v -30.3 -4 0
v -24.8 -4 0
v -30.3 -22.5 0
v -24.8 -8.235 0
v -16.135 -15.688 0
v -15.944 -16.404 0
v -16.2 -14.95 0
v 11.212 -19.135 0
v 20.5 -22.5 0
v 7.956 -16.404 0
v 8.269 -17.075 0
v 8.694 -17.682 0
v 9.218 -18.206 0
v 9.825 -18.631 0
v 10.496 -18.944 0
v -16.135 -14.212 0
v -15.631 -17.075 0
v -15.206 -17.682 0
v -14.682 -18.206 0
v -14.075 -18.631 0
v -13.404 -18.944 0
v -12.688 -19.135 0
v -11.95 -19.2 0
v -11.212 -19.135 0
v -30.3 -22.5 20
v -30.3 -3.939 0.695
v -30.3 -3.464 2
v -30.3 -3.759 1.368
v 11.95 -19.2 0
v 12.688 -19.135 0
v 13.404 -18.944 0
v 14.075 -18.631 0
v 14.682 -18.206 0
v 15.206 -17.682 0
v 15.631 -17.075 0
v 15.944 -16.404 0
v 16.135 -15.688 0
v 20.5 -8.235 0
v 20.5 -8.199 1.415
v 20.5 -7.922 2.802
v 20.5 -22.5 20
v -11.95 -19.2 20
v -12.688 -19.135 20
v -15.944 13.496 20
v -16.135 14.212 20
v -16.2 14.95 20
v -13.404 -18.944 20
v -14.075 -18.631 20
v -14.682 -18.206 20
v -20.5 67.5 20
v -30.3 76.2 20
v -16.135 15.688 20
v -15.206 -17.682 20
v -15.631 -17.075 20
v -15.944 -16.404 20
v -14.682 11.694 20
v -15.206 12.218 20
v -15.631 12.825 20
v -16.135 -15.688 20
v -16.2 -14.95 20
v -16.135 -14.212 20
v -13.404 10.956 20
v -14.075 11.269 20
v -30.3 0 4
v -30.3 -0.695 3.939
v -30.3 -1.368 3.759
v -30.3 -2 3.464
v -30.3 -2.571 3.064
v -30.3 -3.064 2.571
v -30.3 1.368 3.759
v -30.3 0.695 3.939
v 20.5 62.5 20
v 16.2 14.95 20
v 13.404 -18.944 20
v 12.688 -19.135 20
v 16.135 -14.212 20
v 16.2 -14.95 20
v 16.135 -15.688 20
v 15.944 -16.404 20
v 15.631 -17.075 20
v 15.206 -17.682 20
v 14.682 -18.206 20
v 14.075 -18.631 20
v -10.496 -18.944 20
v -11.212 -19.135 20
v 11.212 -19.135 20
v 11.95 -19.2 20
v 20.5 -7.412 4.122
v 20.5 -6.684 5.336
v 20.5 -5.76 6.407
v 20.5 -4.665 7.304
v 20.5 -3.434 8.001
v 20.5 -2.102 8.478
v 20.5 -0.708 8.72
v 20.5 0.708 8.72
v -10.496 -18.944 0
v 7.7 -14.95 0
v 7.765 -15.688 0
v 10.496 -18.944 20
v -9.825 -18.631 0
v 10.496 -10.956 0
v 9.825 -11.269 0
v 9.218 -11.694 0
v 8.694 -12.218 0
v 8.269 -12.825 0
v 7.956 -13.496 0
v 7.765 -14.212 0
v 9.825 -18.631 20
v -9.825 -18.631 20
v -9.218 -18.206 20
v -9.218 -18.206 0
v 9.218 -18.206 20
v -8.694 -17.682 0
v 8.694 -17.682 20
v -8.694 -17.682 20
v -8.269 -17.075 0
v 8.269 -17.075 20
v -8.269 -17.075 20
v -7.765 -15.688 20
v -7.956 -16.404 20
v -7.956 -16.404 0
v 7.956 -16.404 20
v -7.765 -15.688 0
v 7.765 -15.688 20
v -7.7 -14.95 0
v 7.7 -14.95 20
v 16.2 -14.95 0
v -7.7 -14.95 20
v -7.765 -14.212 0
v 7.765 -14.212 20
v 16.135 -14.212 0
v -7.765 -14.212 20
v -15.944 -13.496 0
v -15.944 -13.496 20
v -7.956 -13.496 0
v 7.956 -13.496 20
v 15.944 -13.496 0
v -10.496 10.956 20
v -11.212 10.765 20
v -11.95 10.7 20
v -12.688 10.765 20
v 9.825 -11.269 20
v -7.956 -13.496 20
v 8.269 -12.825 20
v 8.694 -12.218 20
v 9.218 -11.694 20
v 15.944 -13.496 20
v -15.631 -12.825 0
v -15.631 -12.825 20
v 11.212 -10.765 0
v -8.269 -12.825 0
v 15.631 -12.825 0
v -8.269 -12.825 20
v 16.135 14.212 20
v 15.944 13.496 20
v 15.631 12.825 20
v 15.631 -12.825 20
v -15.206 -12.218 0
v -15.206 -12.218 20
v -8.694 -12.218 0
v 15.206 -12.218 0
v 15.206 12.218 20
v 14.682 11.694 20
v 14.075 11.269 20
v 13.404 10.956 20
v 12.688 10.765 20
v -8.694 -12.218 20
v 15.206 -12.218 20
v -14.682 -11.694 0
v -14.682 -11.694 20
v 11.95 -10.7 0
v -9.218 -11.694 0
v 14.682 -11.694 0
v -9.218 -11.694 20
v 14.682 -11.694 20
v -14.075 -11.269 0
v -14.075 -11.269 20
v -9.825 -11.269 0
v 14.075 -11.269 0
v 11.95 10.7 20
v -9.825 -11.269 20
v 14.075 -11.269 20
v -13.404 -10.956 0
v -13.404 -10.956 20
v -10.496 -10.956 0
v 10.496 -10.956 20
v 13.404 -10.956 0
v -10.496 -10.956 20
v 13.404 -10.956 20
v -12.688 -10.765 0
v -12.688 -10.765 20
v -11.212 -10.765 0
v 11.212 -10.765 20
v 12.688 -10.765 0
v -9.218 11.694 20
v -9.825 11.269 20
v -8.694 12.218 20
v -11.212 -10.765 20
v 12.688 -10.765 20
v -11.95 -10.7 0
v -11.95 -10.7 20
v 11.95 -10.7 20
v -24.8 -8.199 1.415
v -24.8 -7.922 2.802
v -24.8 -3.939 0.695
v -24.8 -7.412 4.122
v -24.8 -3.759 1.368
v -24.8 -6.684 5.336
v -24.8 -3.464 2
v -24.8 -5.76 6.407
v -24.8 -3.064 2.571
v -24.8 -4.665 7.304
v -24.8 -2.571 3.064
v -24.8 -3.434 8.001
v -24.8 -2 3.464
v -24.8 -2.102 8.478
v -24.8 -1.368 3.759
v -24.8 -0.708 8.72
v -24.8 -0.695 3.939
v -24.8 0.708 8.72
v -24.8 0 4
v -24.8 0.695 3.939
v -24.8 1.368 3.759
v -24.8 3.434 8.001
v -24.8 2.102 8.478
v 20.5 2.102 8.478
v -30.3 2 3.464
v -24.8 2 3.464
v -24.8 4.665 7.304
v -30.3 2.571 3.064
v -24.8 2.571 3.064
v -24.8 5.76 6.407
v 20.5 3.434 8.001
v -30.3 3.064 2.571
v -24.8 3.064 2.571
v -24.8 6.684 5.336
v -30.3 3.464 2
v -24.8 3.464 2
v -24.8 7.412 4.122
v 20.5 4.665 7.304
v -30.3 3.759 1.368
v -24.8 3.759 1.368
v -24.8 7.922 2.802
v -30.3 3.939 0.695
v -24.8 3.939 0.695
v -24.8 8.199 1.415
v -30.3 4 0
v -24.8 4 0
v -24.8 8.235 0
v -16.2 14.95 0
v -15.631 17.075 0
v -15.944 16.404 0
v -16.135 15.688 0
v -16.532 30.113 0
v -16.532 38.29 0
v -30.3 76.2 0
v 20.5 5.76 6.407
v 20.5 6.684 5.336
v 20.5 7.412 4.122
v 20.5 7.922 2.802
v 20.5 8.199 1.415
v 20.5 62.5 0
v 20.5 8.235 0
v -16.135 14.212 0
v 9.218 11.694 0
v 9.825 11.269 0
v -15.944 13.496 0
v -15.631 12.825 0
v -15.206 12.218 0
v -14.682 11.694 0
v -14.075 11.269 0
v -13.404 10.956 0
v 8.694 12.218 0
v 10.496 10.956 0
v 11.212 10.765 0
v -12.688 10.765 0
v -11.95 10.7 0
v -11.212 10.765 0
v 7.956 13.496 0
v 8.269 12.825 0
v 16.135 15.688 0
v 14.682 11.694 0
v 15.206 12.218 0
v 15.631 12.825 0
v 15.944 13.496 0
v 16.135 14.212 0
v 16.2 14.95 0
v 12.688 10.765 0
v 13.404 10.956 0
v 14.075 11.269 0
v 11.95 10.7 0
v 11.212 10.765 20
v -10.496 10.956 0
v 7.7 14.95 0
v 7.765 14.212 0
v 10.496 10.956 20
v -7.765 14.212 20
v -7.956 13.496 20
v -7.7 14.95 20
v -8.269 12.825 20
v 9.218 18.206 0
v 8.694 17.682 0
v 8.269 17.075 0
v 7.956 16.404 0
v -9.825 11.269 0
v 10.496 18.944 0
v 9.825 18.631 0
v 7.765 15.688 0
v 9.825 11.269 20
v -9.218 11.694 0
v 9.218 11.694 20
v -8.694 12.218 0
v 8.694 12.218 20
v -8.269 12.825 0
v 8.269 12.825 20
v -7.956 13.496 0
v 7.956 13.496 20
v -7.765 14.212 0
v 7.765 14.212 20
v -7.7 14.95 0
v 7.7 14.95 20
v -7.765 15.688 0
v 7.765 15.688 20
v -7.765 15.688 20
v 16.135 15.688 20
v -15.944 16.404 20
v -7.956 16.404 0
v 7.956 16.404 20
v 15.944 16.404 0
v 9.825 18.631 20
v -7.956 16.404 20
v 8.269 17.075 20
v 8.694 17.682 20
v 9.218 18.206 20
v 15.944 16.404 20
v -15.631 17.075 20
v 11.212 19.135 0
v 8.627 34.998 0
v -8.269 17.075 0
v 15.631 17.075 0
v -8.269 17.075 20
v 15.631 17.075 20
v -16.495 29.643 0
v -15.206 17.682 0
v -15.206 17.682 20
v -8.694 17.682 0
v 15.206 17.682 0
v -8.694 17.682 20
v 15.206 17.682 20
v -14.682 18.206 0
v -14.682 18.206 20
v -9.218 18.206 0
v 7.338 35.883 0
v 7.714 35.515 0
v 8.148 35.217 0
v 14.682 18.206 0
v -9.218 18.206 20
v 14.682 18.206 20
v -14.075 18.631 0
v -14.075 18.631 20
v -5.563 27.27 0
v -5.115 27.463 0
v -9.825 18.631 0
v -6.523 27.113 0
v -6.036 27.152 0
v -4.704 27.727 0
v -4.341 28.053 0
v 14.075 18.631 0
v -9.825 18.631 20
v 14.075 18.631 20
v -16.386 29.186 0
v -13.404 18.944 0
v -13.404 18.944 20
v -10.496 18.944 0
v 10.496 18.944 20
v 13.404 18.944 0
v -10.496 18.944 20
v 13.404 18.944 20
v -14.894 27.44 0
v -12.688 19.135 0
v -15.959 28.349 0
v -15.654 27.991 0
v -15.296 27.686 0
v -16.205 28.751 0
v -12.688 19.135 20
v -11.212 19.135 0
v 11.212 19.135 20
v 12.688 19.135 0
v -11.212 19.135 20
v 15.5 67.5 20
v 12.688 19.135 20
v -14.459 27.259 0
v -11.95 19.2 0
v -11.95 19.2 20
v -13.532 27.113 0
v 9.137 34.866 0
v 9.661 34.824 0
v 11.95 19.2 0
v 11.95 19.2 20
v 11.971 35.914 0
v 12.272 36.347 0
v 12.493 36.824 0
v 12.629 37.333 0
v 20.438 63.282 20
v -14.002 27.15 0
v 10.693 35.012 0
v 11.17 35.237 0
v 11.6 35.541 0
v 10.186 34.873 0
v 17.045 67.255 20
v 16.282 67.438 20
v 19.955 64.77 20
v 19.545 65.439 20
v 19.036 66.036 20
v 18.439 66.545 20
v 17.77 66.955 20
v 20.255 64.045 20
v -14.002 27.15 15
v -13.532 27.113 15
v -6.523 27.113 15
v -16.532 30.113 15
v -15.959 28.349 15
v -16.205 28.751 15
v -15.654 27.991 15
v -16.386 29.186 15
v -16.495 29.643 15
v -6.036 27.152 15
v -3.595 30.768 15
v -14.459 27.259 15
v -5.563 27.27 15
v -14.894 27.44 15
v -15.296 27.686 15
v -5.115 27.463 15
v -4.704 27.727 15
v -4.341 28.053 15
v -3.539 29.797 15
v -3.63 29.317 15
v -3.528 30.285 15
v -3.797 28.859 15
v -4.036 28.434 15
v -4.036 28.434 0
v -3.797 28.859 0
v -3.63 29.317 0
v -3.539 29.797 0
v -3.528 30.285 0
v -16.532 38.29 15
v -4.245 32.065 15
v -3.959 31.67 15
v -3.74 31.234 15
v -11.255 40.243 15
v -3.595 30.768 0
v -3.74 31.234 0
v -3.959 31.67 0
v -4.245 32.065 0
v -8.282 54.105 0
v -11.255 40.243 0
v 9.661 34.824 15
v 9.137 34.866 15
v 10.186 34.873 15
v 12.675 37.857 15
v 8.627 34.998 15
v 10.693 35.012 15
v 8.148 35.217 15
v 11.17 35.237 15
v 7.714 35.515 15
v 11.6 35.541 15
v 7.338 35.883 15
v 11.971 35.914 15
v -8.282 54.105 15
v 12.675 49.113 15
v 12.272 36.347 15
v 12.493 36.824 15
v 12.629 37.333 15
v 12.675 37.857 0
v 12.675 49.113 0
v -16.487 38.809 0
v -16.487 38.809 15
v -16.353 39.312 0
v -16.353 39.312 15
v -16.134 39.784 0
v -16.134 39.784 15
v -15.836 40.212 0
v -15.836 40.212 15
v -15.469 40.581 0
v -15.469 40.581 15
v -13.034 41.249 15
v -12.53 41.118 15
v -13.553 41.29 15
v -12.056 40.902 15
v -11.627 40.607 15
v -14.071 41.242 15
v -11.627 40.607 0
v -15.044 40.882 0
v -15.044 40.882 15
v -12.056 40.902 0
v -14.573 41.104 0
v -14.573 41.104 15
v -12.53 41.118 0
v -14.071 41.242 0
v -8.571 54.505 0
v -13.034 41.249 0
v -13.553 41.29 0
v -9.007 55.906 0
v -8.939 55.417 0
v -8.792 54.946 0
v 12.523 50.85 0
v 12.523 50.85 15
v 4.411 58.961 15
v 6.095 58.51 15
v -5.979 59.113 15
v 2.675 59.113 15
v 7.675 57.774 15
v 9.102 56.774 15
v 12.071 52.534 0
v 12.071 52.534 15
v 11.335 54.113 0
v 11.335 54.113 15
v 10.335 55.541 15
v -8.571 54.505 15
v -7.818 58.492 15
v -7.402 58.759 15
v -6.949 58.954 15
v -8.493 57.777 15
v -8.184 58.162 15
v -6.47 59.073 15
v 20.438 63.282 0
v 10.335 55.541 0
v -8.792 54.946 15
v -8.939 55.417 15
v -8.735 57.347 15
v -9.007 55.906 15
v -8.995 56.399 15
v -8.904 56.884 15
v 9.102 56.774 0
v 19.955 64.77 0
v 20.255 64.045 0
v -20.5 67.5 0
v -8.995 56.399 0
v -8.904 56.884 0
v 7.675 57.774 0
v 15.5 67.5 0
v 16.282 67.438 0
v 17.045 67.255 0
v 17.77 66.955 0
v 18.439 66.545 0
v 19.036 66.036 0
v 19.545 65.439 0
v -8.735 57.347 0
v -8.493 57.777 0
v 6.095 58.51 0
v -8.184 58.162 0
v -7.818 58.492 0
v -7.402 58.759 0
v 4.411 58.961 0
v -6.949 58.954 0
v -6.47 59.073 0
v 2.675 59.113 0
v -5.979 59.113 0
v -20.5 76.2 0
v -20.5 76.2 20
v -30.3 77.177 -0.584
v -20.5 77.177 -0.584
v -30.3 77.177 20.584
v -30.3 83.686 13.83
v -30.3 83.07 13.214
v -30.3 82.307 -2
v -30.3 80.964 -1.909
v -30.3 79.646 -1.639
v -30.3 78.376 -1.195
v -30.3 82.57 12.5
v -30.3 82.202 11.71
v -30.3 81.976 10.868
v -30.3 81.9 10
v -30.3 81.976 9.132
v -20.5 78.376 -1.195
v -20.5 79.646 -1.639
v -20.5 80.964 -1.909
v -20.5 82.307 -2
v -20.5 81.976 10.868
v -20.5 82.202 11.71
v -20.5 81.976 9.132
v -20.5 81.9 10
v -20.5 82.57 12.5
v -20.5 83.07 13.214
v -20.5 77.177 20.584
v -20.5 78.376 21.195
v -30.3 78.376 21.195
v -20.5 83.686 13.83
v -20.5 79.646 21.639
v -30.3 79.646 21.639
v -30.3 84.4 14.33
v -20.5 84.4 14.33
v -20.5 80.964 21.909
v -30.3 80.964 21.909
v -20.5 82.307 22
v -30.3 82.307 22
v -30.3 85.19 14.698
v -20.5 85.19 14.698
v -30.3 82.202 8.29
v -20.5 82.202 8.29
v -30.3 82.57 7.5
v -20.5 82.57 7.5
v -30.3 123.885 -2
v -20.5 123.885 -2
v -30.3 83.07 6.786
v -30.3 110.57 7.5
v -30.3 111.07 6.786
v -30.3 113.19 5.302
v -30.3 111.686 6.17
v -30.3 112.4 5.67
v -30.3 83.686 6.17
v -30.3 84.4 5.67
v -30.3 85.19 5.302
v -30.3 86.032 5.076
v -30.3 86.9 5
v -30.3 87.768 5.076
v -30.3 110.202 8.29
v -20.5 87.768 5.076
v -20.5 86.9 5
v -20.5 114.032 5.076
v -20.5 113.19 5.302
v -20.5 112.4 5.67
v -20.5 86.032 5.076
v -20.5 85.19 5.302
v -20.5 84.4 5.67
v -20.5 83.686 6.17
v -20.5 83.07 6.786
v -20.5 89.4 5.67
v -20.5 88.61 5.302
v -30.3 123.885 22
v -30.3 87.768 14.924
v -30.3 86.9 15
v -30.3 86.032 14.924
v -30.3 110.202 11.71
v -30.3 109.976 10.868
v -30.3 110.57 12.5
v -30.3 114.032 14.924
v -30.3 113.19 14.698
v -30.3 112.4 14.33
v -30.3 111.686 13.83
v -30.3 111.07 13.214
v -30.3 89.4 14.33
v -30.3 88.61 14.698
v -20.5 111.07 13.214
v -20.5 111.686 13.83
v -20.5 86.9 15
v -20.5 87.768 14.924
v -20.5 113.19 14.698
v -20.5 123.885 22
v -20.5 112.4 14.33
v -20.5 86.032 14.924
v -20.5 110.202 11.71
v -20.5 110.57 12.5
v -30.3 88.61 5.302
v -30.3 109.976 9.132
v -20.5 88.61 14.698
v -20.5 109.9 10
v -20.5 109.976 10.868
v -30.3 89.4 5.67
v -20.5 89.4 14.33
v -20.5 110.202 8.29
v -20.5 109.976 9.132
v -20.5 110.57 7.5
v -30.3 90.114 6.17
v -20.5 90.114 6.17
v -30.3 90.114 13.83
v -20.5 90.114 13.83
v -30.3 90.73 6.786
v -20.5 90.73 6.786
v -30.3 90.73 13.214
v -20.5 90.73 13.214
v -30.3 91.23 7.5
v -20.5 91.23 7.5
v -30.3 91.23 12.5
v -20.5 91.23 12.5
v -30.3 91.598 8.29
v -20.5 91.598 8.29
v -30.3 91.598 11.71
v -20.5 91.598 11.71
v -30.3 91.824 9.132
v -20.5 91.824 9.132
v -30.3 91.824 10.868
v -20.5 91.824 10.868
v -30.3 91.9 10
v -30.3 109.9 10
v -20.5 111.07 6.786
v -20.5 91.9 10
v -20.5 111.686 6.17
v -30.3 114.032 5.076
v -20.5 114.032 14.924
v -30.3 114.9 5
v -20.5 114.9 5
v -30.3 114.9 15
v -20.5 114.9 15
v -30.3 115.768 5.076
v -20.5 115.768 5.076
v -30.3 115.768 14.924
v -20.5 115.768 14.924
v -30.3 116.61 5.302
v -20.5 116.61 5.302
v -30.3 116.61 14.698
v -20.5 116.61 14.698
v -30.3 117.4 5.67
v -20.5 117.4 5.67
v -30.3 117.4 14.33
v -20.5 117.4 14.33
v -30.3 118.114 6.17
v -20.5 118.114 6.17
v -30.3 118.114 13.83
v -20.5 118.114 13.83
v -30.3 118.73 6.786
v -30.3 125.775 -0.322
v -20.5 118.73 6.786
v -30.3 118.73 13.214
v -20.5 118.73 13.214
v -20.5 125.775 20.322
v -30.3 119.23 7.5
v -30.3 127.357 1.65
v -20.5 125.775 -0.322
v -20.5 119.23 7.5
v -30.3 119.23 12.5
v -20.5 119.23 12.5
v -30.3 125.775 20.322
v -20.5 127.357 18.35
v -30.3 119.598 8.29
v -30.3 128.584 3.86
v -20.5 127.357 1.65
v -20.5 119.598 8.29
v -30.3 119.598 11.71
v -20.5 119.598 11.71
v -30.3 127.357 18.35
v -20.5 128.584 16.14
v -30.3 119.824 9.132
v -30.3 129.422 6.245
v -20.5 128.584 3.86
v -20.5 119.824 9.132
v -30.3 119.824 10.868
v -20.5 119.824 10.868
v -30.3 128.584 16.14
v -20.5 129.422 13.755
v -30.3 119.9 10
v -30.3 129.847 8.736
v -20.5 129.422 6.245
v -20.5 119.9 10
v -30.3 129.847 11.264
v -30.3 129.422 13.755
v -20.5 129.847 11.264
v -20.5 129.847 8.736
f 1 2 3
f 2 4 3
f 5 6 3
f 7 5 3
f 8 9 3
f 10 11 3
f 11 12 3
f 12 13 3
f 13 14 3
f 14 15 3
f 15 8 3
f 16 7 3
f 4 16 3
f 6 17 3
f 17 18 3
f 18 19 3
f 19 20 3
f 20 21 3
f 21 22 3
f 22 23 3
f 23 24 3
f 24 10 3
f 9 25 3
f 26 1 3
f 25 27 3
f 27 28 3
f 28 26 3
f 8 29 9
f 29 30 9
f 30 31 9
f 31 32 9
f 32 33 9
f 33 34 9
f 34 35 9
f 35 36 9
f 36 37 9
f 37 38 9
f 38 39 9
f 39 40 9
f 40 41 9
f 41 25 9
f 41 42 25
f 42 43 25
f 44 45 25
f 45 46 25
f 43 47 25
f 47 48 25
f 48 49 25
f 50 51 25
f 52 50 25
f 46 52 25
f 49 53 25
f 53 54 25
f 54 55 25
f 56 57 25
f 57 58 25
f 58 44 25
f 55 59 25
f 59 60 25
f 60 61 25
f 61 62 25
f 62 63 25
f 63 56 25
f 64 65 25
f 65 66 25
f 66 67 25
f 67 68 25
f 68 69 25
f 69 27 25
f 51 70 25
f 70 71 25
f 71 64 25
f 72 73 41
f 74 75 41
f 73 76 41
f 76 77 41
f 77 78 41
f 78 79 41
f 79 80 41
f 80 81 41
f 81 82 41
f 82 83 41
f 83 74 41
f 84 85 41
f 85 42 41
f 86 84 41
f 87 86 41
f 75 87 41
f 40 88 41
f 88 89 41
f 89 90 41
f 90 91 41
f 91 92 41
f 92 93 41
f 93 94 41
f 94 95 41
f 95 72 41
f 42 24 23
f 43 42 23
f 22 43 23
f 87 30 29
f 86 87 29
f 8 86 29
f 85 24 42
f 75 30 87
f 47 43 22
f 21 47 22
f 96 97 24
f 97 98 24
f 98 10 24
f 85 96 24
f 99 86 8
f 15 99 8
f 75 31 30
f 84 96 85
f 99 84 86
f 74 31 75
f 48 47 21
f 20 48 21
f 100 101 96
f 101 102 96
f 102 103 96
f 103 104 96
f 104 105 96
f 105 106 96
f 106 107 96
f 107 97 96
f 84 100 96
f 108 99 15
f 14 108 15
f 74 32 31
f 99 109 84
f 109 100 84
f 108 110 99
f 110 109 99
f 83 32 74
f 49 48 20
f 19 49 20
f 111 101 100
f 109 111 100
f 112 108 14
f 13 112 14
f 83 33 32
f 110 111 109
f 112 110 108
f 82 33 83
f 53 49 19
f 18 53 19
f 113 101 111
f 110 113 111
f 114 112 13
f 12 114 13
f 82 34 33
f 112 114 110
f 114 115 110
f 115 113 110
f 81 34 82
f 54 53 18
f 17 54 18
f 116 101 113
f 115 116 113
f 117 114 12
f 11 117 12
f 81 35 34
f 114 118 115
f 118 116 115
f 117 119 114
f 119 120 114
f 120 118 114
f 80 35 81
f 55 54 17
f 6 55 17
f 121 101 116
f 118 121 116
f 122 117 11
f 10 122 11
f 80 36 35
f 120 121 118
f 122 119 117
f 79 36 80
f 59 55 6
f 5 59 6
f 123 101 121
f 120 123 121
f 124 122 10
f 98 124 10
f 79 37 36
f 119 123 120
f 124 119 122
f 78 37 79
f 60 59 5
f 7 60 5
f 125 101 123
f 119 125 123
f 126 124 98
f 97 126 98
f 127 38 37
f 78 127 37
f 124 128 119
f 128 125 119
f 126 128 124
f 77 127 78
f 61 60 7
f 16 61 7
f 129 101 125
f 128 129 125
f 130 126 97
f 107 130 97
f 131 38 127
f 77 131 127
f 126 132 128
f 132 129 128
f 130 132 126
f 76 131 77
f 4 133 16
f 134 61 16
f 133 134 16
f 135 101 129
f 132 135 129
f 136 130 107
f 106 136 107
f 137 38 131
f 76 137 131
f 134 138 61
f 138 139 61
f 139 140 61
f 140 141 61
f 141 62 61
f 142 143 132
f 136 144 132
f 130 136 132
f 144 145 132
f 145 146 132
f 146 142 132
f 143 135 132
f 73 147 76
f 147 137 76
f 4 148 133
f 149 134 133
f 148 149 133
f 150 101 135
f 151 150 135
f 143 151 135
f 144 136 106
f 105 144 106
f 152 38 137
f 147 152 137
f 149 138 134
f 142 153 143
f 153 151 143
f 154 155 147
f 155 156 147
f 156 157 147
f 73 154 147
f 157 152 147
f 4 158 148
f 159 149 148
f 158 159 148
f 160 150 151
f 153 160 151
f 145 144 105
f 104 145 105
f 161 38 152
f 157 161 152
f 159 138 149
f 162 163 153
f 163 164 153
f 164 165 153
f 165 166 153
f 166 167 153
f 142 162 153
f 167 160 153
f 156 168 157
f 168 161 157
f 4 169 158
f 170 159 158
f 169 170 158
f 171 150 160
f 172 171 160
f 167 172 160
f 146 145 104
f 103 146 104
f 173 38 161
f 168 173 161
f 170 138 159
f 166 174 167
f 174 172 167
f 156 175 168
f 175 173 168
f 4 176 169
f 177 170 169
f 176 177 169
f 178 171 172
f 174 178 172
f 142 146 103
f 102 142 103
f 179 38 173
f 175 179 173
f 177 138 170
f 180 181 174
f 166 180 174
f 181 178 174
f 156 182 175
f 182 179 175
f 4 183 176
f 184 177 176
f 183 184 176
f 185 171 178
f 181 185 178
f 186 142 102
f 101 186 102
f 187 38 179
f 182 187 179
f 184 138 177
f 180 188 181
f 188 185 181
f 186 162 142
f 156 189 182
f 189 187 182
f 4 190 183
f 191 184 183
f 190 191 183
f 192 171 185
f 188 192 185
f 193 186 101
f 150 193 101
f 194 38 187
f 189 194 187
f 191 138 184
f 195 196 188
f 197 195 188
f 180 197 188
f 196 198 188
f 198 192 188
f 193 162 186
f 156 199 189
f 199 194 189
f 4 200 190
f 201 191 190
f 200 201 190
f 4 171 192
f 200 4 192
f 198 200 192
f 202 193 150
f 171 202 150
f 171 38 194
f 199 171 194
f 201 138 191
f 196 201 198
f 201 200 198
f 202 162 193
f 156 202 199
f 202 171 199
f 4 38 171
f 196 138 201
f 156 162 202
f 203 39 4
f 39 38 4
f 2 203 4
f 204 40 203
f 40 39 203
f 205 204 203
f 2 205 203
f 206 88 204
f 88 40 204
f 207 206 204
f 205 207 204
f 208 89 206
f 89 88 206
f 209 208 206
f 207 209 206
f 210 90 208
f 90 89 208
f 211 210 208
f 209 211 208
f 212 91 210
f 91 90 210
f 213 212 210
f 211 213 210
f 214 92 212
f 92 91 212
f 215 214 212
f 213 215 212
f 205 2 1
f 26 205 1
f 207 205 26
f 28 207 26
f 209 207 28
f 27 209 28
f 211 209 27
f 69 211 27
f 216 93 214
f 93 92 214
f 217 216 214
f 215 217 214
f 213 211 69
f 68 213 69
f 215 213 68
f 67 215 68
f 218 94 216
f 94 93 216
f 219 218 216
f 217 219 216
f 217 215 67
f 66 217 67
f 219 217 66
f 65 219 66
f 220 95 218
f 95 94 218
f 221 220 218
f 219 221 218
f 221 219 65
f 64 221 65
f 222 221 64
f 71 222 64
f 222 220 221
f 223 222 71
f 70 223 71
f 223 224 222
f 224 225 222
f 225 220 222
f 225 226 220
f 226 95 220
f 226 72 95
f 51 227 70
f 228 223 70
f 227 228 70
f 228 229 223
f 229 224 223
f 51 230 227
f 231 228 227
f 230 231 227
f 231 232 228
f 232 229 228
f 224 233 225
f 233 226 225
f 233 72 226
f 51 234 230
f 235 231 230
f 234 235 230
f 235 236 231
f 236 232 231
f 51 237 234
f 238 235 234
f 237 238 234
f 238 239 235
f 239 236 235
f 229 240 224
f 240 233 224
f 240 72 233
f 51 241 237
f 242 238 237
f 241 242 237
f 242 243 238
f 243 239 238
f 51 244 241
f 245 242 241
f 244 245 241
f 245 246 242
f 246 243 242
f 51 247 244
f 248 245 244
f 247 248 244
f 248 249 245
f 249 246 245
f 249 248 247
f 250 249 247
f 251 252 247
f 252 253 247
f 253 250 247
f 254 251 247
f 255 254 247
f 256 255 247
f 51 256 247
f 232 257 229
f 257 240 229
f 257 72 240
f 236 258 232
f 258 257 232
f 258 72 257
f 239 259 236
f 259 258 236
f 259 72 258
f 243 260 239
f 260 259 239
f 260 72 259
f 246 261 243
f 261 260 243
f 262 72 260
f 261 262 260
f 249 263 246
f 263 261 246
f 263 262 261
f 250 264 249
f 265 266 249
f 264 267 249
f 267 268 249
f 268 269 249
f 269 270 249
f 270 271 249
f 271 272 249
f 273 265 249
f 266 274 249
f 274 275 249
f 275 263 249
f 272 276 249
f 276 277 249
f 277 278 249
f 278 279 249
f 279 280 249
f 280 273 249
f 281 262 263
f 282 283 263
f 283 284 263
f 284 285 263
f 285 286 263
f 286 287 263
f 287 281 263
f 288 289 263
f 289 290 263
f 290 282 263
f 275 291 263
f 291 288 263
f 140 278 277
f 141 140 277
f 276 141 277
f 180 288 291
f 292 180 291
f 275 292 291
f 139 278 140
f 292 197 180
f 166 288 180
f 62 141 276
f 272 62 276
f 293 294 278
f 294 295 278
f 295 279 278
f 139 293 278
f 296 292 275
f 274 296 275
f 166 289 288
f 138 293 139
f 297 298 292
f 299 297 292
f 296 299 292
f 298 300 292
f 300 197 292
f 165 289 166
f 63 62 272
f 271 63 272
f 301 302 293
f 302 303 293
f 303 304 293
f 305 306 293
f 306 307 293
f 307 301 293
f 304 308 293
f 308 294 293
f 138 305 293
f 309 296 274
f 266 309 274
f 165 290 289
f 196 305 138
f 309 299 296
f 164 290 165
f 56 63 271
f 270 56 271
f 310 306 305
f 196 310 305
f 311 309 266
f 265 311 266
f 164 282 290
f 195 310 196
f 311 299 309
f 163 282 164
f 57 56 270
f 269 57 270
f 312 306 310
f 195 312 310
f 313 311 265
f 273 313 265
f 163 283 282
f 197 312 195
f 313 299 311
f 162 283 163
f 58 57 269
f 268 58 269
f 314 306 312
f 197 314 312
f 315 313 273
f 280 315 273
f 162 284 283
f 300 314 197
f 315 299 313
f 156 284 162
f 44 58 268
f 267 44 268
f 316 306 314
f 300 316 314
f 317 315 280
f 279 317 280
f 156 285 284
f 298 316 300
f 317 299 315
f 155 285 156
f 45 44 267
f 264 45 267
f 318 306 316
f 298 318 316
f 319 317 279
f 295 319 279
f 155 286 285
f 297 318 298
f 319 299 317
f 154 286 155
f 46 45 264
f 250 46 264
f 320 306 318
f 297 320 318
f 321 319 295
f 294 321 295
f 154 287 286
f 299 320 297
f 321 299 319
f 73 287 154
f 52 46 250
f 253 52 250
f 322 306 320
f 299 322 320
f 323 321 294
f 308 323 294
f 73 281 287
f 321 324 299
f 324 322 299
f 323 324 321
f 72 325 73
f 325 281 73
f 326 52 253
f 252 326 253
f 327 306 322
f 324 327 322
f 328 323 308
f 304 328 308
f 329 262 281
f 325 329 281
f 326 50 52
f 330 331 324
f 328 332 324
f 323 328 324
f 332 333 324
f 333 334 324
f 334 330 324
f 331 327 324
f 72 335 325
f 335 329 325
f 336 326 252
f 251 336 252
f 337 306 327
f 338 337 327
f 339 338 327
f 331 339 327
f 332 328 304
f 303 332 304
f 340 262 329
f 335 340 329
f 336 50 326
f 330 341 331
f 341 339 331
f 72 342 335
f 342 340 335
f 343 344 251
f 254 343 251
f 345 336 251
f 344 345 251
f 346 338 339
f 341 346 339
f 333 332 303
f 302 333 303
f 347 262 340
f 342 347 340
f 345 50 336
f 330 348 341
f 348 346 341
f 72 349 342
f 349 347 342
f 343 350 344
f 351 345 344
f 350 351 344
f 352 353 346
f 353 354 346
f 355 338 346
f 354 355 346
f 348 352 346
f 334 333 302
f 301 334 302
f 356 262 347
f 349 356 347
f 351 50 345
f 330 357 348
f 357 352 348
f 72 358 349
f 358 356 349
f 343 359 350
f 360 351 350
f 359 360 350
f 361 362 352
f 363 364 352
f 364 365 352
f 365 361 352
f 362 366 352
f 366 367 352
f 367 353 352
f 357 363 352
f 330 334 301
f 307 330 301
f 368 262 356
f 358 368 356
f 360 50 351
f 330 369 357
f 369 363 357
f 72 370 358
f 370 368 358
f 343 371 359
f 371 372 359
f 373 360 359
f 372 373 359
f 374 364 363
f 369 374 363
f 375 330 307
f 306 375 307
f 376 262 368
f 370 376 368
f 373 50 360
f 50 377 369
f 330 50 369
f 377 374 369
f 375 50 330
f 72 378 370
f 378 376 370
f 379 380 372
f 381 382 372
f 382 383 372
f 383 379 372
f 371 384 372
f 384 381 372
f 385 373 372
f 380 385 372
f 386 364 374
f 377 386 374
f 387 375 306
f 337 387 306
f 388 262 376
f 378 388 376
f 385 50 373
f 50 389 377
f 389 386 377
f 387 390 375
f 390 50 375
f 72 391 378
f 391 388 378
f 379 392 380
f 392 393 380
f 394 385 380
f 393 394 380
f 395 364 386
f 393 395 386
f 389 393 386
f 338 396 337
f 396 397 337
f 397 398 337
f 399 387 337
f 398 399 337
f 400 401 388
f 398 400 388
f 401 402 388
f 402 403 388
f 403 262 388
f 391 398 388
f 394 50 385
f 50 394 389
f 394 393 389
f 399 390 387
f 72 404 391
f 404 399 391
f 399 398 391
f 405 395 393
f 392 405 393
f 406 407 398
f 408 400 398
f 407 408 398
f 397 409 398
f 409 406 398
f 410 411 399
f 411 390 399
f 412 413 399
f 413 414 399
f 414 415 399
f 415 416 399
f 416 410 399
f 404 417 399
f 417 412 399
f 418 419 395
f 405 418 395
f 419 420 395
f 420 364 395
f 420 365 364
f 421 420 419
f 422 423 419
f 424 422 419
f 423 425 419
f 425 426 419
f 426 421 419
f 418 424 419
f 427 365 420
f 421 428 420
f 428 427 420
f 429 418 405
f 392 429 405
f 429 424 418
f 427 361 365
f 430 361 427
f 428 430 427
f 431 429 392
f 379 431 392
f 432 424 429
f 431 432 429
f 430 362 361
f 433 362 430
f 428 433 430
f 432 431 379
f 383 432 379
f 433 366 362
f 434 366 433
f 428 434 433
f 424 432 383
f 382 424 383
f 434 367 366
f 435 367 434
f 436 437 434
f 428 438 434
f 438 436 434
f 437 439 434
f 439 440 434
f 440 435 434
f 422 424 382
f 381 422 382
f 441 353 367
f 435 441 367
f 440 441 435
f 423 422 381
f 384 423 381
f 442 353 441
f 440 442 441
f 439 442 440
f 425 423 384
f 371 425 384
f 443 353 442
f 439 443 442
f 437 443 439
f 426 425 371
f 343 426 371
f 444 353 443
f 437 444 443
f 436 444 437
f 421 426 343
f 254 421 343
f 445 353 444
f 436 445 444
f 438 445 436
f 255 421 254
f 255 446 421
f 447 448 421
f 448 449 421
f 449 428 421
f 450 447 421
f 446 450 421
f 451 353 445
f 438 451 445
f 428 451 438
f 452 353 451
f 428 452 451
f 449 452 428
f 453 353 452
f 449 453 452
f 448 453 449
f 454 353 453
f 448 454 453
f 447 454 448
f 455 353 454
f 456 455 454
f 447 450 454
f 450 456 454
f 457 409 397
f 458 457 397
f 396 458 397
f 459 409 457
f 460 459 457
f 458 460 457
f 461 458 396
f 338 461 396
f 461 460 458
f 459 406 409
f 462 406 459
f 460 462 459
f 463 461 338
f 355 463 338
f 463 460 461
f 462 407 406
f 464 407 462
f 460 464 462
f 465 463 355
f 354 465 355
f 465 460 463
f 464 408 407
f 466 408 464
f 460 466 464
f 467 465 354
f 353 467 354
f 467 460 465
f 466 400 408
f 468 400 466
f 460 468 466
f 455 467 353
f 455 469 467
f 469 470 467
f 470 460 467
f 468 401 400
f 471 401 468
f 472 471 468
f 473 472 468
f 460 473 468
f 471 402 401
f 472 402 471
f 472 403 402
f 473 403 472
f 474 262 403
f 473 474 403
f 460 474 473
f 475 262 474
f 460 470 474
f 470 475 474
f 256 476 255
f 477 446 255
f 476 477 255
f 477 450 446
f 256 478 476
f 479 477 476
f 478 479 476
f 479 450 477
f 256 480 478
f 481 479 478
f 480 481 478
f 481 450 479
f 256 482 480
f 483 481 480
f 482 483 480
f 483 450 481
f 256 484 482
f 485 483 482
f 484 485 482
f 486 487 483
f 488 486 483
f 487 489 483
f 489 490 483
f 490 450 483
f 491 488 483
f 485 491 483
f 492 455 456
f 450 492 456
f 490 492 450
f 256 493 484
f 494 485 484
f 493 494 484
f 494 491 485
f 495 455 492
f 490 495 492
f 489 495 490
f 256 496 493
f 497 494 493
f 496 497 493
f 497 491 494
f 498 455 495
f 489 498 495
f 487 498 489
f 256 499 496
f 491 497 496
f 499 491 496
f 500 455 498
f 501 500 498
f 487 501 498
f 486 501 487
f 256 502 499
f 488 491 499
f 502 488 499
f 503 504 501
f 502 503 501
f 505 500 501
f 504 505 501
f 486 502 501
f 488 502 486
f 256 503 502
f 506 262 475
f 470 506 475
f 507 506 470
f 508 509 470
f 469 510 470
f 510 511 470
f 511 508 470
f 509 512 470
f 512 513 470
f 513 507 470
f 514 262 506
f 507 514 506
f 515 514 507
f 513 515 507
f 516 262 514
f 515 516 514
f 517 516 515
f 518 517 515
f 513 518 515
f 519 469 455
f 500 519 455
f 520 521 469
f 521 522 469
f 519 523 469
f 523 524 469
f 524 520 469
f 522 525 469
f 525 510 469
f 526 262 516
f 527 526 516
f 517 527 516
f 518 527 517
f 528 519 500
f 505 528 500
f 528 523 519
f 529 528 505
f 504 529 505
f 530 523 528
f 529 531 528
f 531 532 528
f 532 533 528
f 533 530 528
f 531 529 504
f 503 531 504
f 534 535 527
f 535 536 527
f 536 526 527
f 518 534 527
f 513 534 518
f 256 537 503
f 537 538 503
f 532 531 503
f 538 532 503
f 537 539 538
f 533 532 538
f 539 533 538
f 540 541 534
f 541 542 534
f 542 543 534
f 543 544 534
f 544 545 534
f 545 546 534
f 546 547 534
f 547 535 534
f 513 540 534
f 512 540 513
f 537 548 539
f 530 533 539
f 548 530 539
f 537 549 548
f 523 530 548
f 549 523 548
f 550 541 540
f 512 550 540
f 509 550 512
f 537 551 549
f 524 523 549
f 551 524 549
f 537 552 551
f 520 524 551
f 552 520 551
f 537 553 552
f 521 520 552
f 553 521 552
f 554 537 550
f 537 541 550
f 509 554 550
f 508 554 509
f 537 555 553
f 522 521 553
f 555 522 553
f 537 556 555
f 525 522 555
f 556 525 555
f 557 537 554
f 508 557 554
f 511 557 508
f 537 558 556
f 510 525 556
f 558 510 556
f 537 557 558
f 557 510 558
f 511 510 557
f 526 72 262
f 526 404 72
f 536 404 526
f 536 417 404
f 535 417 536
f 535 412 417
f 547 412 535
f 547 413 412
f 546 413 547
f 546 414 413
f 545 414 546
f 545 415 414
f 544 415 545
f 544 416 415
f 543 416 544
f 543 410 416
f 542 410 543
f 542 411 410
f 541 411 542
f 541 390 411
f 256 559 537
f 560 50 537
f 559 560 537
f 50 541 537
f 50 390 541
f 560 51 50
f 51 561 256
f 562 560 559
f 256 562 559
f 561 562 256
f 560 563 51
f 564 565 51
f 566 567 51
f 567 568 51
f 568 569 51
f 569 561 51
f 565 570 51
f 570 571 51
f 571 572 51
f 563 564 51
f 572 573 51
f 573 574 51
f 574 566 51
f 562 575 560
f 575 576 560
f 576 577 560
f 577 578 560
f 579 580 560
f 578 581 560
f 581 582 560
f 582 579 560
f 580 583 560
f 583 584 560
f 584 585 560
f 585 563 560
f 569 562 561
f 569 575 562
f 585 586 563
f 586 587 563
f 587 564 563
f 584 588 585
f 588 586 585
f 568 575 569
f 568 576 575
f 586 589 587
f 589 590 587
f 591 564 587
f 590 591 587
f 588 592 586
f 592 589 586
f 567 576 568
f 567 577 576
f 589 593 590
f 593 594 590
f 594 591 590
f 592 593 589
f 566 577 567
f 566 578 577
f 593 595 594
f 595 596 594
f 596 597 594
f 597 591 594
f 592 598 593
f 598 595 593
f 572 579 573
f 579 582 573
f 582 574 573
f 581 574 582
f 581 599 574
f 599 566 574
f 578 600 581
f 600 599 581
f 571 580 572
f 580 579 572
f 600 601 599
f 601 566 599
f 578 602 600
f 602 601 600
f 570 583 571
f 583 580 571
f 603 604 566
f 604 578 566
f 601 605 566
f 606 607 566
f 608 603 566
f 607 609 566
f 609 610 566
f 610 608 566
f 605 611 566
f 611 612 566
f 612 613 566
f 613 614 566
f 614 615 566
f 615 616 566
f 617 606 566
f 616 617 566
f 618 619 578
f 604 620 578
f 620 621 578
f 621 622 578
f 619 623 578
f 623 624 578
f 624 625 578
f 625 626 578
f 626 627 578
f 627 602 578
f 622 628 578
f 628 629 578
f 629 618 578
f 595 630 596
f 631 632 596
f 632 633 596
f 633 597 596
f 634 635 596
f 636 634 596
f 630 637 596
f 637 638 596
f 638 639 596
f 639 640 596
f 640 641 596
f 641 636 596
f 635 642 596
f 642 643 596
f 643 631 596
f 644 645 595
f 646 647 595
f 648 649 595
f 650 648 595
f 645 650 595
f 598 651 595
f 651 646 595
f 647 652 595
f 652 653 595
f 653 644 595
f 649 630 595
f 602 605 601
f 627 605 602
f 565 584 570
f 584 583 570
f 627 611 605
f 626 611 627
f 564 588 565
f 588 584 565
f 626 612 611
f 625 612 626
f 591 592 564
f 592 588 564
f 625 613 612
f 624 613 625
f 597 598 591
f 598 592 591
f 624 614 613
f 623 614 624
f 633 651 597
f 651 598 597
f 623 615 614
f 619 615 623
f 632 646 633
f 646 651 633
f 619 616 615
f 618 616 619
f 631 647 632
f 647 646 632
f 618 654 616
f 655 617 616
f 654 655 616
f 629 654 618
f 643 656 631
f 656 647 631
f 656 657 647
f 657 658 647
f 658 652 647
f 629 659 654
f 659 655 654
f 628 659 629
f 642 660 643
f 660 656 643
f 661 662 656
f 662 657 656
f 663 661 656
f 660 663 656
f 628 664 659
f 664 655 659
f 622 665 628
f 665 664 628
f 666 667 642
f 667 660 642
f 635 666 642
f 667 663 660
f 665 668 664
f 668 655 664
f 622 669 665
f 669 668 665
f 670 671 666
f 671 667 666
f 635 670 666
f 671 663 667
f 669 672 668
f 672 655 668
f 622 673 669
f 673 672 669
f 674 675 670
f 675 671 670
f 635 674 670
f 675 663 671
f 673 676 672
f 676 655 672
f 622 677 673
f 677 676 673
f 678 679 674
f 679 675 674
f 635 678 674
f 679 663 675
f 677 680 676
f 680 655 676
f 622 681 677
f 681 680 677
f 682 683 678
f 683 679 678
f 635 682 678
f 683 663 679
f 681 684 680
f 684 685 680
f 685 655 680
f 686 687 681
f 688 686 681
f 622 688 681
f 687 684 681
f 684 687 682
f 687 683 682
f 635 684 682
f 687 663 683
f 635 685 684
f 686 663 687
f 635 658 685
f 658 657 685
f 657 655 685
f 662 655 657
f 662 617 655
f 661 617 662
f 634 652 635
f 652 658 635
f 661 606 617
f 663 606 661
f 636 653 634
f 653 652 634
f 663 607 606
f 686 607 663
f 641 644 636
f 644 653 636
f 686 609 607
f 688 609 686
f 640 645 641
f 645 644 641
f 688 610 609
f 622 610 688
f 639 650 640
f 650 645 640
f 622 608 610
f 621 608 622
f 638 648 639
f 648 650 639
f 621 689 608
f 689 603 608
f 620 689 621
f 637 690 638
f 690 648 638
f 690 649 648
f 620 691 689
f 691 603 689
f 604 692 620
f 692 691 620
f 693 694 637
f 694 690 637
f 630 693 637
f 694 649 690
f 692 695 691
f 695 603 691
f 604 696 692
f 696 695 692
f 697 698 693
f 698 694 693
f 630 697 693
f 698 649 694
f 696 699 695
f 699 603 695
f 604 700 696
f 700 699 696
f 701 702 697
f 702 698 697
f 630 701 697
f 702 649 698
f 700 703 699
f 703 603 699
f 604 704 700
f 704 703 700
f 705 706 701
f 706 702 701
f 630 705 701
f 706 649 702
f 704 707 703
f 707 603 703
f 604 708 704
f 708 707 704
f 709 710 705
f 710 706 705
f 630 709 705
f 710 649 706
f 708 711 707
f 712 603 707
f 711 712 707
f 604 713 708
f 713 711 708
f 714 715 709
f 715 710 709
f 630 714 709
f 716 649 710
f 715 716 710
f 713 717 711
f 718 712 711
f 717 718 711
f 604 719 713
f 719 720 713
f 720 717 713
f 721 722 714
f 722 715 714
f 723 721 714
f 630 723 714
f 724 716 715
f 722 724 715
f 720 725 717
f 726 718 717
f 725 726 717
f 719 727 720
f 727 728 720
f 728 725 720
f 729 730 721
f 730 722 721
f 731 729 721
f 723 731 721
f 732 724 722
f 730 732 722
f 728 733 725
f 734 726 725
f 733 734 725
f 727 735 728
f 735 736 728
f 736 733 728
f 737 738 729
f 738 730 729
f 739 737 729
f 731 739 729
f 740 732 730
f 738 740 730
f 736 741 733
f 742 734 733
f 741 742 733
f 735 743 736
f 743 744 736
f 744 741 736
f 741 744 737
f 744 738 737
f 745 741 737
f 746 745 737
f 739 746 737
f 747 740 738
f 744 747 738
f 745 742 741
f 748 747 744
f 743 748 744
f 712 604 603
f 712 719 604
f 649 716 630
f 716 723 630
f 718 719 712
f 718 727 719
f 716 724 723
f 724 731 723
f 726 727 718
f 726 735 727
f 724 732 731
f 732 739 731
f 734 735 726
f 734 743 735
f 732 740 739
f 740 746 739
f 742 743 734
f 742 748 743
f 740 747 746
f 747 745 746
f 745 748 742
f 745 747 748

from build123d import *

# Parameters (mm, degrees)
SKETCH4_W               = 41
SKETCH4_H               = 45
SKETCH4_R               = 4.25
BOSS_EXTRUDE1_DEPTH     = 20
SKETCH6_W               = 9.8
SKETCH6_H               = 152.4
BOSS_EXTRUDE2_DEPTH     = 20
SKETCH7_R               = 5
BOSS_EXTRUDE3_DEPTH     = 9.8
SKETCH8_R               = 5
CUT_EXTRUDE2_DEPTH      = 15
SKETCH5_R               = 8.25
CUT_EXTRUDE1_DEPTH      = 65
BOSS_EXTRUDE4_DEPTH     = 20
CUT_EXTRUDE3_DEPTH      = 86
CUT_EXTRUDE3_DEPTH_BACK = 86
BOSS_EXTRUDE5_START     = -1.5
BOSS_EXTRUDE5_DEPTH     = 1.5
CUT_EXTRUDE4_DEPTH      = 13.5
SKETCH13_R              = 5
BOSS_EXTRUDE6_DEPTH     = 4
SKETCH14_R              = 4
CUT_EXTRUDE5_DEPTH      = 10
CUT_EXTRUDE6_DEPTH      = 15


with BuildPart() as part:
    # Sketch4 → Boss-Extrude1 (new body)
    with BuildSketch(Plane.XY):
        Rectangle(SKETCH4_W, SKETCH4_H)
        with Locations((-11.95, 14.95)):
            Circle(SKETCH4_R, mode=Mode.SUBTRACT)
        with Locations((11.95, 14.95)):
            Circle(SKETCH4_R, mode=Mode.SUBTRACT)
        with Locations((11.95, -14.95)):
            Circle(SKETCH4_R, mode=Mode.SUBTRACT)
        with Locations((-11.95, -14.95)):
            Circle(SKETCH4_R, mode=Mode.SUBTRACT)
    extrude(amount=BOSS_EXTRUDE1_DEPTH)

    # Sketch6 → Boss-Extrude2 (add)
    with BuildSketch(Plane(origin=(0, 0, 0), x_dir=(-1, 0, 0), z_dir=(0, 0, -1))):
        with Locations((25.4, 53.7)):
            Rectangle(SKETCH6_W, SKETCH6_H)
    extrude(amount=-BOSS_EXTRUDE2_DEPTH)

    # Sketch7 → Boss-Extrude3 (add)
    with BuildSketch(Plane(origin=(-20.5, 0, 0), x_dir=(0, 0, -1), z_dir=(1, 0, 0))):
        with Locations((-10, 114.9)):
            Circle(SKETCH7_R)
        with Locations((-10, 86.9)):
            Circle(SKETCH7_R)
        with BuildLine():
            Line((0, 76.2), (0.583845628, 77.176915135))
            ThreePointArc((0.583845628, 77.176915135), (1.639462026, 79.646010822), (2, 82.306982798))
            Line((2, 82.306982798), (2, 123.885290943))
            ThreePointArc((2, 123.885290943), (1.549421785, 126.853210006), (0.238291287, 129.553673135))
            Line((0.238291287, 129.553673135), (0, 129.9))
            Line((0, 129.9), (0, 76.2))
        make_face()
        with BuildLine():
            Line((-20, 76.2), (-20.583845628, 77.176915135))
            ThreePointArc((-20.583845628, 77.176915135), (-21.639462026, 79.646010822), (-22, 82.306982798))
            Line((-22, 82.306982798), (-22, 123.885290943))
            ThreePointArc((-22, 123.885290943), (-21.549421785, 126.853210006), (-20.238291287, 129.553673135))
            Line((-20.238291287, 129.553673135), (-20, 129.9))
            Line((-20, 129.9), (-20, 76.2))
        make_face()
    extrude(amount=-BOSS_EXTRUDE3_DEPTH)

    # Sketch8 → Cut-Extrude2 (cut)
    with BuildSketch(Plane(origin=(-20.5, 0, 0), x_dir=(0, 0, -1), z_dir=(1, 0, 0))):
        with Locations((-10, 86.9)):
            Circle(SKETCH8_R)
        with Locations((-10, 114.9)):
            Circle(SKETCH8_R)
    extrude(amount=-CUT_EXTRUDE2_DEPTH, mode=Mode.SUBTRACT)

    # Sketch5 → Cut-Extrude1 (cut)
    with BuildSketch(Plane(origin=(20.5, 0, 0), x_dir=(0, 0, -1), z_dir=(1, 0, 0))):
        with Locations((-0.5, 0)):
            Circle(SKETCH5_R)
    extrude(amount=-CUT_EXTRUDE1_DEPTH, mode=Mode.SUBTRACT)

    # Sketch9 → Boss-Extrude4 (add)
    with BuildSketch(Plane(origin=(0, 0, 0), x_dir=(-1, 0, 0), z_dir=(0, 0, -1))):
        with BuildLine():
            Line((-20.5, 22.5), (-20.5, 62.5))
            ThreePointArc((-20.5, 62.5), (-19.035533906, 66.035533906), (-15.5, 67.5))
            Line((-15.5, 67.5), (20.5, 67.5))
            Line((20.5, 67.5), (20.5, 22.5))
            Line((20.5, 22.5), (-20.5, 22.5))
        make_face()
    extrude(amount=-BOSS_EXTRUDE4_DEPTH)

    # Sketch10 → Cut-Extrude3 (cut, two sides: drawn at the far end of the back side and taken through both)
    with BuildSketch(Plane.XY.offset(-CUT_EXTRUDE3_DEPTH_BACK)):
        Polygon((-30.3, -22.5), (-26.3, -22.5), (-26.3, 157.593855938), (-61.075791469, 162.523409413), (-64.522830675, 37.584660103), align=None)
    extrude(amount=CUT_EXTRUDE3_DEPTH + CUT_EXTRUDE3_DEPTH_BACK, mode=Mode.SUBTRACT)

    # Sketch11 → Boss-Extrude5 (add)
    with BuildSketch(Plane.ZY.offset(26.3).offset(BOSS_EXTRUDE5_START)):
        with BuildLine():
            Line((0, -8.234834546), (0, 8.234834546))
            ThreePointArc((0, 8.234834546), (8.75, 0), (0, -8.234834546))
        make_face()
    extrude(amount=BOSS_EXTRUDE5_DEPTH)

    # Sketch12 → Cut-Extrude4 (cut)
    with BuildSketch(Plane(origin=(-20.5, 0, 0), x_dir=(0, 0, -1), z_dir=(1, 0, 0))):
        with BuildLine():
            Line((-22, 123.885290943), (-30.820305045, 123.885290943))
            Line((-30.820305045, 123.885290943), (-25.068984461, 136.818732695))
            Line((-25.068984461, 136.818732695), (-2.479535984, 134.912757399))
            Line((-2.479535984, 134.912757399), (8.997050859, 125.264275664))
            Line((8.997050859, 125.264275664), (2, 123.885290943))
            ThreePointArc((2, 123.885290943), (-10, 129.9), (-22, 123.885290943))
        make_face()
    extrude(amount=-CUT_EXTRUDE4_DEPTH, mode=Mode.SUBTRACT)

    # Sketch13 → Boss-Extrude6 (add)
    with BuildSketch(Plane.ZY.offset(26.3)):
        with BuildLine():
            Line((0, -22.5), (20, -22.5))
            Line((20, -22.5), (20, 76.2))
            Line((20, 76.2), (20.583845628, 77.176915135))
            ThreePointArc((20.583845628, 77.176915135), (21.639462026, 79.646010822), (22, 82.306982798))
            Line((22, 82.306982798), (22, 123.885290943))
            ThreePointArc((22, 123.885290943), (10, 129.9), (-2, 123.885290943))
            Line((-2, 123.885290943), (-2, 82.306982798))
            ThreePointArc((-2, 82.306982798), (-1.639462026, 79.646010822), (-0.583845628, 77.176915135))
            Line((-0.583845628, 77.176915135), (0, 76.2))
            Line((0, 76.2), (0, -22.5))
        make_face()
        with Locations(Location((10, 114.9, 0), (0, 0, 180))):
            Circle(SKETCH13_R, mode=Mode.SUBTRACT)
        with Locations(Location((10, 86.9, 0), (0, 0, 180))):
            Circle(SKETCH13_R, mode=Mode.SUBTRACT)
    extrude(amount=BOSS_EXTRUDE6_DEPTH)

    # Sketch14 → Cut-Extrude5 (cut)
    with BuildSketch(Plane.ZY.offset(30.3)):
        Circle(SKETCH14_R)
    extrude(amount=-CUT_EXTRUDE5_DEPTH, mode=Mode.SUBTRACT)

    # Sketch16 → Cut-Extrude6 (cut)
    with BuildSketch(Plane(origin=(0, 0, 0), x_dir=(-1, 0, 0), z_dir=(0, 0, -1))):
        with BuildLine():
            Line((-7.337559311, 35.883172827), (8.281826454, 54.105327978))
            ThreePointArc((8.281826454, 54.105327978), (8.734653676, 57.347267148), (5.97851601, 59.113315631))
            Line((5.97851601, 59.113315631), (-2.674541305, 59.113315631))
            ThreePointArc((-2.674541305, 59.113315631), (-9.745609117, 56.184383443), (-12.674541305, 49.113315631))
            Line((-12.674541305, 49.113315631), (-12.674541305, 37.857488931))
            ThreePointArc((-12.674541305, 37.857488931), (-10.693408521, 35.012260431), (-7.337559311, 35.883172827))
        make_face()
        with BuildLine():
            Line((4.245024065, 32.065048559), (11.254642469, 40.242729553))
            ThreePointArc((11.254642469, 40.242729553), (14.573244191, 41.103975455), (16.53238784, 38.290326924))
            Line((16.53238784, 38.290326924), (16.53238784, 30.11264593))
            ThreePointArc((16.53238784, 30.11264593), (15.653708183, 27.991325586), (13.53238784, 27.11264593))
            Line((13.53238784, 27.11264593), (6.522769436, 27.11264593))
            ThreePointArc((6.522769436, 27.11264593), (3.797222895, 28.859092558), (4.245024065, 32.065048559))
        make_face()
    extrude(amount=-CUT_EXTRUDE6_DEPTH, mode=Mode.SUBTRACT)


solid = part.part
